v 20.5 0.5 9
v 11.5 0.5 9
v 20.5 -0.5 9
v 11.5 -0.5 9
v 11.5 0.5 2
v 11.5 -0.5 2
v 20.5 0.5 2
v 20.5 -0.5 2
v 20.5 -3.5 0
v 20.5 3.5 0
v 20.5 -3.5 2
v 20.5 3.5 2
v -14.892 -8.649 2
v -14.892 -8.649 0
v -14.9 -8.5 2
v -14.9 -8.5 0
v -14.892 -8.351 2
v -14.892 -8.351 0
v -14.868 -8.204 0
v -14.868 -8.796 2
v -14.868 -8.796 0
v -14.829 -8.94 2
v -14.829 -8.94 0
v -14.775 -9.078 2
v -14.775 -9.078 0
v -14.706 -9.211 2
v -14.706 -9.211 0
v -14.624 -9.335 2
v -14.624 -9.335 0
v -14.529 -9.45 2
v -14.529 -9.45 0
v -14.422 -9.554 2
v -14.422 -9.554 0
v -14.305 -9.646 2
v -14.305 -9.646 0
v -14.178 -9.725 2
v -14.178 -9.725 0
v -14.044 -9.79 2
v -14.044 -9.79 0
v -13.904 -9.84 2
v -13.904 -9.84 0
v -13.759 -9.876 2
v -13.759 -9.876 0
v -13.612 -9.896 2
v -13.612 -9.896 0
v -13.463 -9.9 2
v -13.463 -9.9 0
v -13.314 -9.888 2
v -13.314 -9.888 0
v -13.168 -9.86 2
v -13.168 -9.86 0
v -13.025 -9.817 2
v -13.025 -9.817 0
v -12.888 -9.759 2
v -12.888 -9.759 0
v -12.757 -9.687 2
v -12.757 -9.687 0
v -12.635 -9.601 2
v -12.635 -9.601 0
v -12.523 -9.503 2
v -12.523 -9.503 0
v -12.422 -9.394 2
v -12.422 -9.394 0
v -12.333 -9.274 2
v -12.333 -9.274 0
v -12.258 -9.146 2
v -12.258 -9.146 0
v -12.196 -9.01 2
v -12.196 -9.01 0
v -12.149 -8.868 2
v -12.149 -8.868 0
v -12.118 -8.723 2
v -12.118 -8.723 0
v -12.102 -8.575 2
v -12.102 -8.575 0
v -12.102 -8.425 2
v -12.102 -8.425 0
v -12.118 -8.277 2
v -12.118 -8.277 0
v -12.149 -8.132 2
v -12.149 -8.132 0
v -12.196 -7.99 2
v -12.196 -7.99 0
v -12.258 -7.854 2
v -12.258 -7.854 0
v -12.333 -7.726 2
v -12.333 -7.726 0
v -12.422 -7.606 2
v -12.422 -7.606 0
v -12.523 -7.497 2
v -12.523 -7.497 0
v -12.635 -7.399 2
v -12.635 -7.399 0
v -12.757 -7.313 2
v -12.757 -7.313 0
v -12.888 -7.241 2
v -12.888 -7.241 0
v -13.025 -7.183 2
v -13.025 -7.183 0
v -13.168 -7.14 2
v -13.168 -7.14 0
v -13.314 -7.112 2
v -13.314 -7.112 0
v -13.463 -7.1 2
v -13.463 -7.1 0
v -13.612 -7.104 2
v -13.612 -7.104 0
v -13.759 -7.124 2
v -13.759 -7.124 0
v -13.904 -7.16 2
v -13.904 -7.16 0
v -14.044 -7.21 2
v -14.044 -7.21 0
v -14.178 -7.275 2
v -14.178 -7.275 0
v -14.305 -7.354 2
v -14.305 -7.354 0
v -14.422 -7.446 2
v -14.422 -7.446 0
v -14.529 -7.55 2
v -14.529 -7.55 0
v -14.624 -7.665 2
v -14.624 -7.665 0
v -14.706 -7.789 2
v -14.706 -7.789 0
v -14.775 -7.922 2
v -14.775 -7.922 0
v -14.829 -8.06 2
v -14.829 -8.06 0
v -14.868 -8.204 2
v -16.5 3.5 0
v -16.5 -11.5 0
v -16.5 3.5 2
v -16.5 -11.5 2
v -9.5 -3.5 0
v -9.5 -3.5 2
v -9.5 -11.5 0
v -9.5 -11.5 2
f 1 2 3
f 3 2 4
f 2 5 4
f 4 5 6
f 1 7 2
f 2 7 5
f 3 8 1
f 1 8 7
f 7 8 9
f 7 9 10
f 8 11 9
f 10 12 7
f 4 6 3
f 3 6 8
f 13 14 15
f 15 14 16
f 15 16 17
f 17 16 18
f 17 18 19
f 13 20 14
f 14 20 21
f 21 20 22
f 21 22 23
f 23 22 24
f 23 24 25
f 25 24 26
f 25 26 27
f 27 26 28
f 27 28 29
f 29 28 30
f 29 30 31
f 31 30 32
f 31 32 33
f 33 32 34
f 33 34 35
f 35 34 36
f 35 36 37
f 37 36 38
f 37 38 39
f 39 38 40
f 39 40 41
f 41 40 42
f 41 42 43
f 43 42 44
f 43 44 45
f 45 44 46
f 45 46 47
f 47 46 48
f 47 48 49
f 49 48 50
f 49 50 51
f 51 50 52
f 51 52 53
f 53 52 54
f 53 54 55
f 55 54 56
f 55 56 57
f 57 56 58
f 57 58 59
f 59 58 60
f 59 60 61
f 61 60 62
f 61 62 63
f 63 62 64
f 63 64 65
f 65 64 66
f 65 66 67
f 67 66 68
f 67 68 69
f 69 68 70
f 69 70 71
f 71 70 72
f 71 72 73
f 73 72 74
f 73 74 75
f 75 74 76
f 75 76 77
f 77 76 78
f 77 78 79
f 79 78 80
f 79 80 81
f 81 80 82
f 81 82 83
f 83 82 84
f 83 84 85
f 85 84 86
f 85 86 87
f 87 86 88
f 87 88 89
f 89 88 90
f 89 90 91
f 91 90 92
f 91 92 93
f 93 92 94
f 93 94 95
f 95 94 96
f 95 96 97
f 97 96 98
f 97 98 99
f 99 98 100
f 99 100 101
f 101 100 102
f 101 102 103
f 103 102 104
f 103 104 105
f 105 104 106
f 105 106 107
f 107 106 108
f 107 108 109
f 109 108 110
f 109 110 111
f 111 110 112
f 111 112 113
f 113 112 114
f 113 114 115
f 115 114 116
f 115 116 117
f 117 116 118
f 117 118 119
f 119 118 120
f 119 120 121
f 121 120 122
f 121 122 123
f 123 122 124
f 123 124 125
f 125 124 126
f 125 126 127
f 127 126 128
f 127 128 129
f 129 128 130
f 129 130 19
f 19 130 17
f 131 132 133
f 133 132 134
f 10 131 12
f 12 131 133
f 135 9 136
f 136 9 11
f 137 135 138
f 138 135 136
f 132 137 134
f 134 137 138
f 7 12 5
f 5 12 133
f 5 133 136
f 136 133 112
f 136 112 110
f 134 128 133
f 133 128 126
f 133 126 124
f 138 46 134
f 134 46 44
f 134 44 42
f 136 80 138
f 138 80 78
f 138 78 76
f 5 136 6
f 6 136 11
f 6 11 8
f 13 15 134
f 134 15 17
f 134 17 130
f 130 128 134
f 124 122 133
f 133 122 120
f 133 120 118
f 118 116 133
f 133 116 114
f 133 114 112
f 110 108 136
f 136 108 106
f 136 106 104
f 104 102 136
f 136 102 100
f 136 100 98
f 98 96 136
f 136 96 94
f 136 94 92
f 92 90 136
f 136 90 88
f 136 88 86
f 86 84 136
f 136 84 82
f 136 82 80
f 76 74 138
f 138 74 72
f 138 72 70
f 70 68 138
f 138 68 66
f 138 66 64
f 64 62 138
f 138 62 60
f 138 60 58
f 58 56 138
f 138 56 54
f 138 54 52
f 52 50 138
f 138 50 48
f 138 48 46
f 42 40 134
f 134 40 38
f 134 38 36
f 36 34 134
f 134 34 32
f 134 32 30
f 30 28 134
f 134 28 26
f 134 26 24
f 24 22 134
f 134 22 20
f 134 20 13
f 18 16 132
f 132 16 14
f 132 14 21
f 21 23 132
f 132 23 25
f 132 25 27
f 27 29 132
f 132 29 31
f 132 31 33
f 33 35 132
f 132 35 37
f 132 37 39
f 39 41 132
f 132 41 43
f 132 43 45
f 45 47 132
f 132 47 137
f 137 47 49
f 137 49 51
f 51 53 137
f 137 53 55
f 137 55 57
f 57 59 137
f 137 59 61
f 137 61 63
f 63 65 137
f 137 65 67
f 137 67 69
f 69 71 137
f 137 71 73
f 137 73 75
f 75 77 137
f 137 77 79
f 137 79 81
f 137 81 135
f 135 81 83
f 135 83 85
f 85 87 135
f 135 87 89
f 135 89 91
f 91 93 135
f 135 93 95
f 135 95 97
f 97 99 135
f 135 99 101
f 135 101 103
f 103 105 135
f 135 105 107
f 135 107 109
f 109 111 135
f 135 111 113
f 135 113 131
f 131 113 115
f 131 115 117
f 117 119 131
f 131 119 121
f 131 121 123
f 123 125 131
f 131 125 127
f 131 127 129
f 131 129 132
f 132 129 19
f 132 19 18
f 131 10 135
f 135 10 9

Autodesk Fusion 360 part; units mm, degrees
sketch "Sketch1" plane through (0, 0, 0) normal (0, 0, 1) x (1, 0, 0)
  line L0 (16.5, -3.5) -> (-16.5, -3.5)
  line L1 (-16.5, -3.5) -> (-16.5, 3.5)
  line L2 (-16.5, 3.5) -> (16.5, 3.5)
  line L3 (16.5, 3.5) -> (16.5, -3.5)
  line L4 (16.5, -3.5) -> (-16.5, 3.5) construction
  line L5 (-16.5, -3.5) -> (16.5, 3.5) construction
  circle A0 centre (-13.5, -8.5) radius 1.4
  line L6 (-16.5, 3.5) -> (-9.5, 3.5)
  line L7 (-9.5, 3.5) -> (-9.5, -11.5)
  line L8 (-9.5, -11.5) -> (-16.5, -11.5)
  line L9 (-16.5, -11.5) -> (-16.5, 3.5)
  dimension "d1" = 33
  dimension "d2" = 7
  dimension "d3" = 2.8
  dimension "d4" = 3
  dimension "d16" = 15
  dimension "d17" = 3
  dimension "d18" = 7
extrude "Extrude1" add sketch "Sketch1" along normal blind 2
sketch "Sketch2" plane through (16.5, 0, 0) normal (1, 0, 0) x (0, 1, 0)
  line L0 (-3.5, 0) -> (3.5, 0)
  line L1 (3.5, 0) -> (3.5, 2)
  line L2 (3.5, 2) -> (-3.5, 2)
  line L3 (-3.5, 2) -> (-3.5, 0)
  line L4 (0, 2) -> (0.5, 2)
  line L5 (0.5, 2) -> (0.5, 12)
  line L6 (0.5, 12) -> (0, 12)
  line L7 (0, 12) -> (0, 2)
  line L8 (0, 12) -> (-0.5, 12)
  line L9 (-0.5, 12) -> (-0.5, 2)
  line L10 (-0.5, 2) -> (0, 2)
  line L11 (0, 2) -> (0, 12)
  dimension "d7" = 0.5
  dimension "d8" = 10
  dimension "d9" = 0.5
extrude "Extrude2" add sketch "Sketch2" against normal blind 5 contours L2 L7 L8 L9 L10 L11 | L2 L4 L5 L6 L7 L11
extrude "Extrude3" add 1 faces at (16.5, 0.1667, 0.6667) along direction (1, 0, 0) blind 4
extrude "Extrude4" cut 1 faces at (17.5, -0.1667, 12) along direction (0, 0, -1) blind 3
equation "d1 = 25 mm + 8 mm"
